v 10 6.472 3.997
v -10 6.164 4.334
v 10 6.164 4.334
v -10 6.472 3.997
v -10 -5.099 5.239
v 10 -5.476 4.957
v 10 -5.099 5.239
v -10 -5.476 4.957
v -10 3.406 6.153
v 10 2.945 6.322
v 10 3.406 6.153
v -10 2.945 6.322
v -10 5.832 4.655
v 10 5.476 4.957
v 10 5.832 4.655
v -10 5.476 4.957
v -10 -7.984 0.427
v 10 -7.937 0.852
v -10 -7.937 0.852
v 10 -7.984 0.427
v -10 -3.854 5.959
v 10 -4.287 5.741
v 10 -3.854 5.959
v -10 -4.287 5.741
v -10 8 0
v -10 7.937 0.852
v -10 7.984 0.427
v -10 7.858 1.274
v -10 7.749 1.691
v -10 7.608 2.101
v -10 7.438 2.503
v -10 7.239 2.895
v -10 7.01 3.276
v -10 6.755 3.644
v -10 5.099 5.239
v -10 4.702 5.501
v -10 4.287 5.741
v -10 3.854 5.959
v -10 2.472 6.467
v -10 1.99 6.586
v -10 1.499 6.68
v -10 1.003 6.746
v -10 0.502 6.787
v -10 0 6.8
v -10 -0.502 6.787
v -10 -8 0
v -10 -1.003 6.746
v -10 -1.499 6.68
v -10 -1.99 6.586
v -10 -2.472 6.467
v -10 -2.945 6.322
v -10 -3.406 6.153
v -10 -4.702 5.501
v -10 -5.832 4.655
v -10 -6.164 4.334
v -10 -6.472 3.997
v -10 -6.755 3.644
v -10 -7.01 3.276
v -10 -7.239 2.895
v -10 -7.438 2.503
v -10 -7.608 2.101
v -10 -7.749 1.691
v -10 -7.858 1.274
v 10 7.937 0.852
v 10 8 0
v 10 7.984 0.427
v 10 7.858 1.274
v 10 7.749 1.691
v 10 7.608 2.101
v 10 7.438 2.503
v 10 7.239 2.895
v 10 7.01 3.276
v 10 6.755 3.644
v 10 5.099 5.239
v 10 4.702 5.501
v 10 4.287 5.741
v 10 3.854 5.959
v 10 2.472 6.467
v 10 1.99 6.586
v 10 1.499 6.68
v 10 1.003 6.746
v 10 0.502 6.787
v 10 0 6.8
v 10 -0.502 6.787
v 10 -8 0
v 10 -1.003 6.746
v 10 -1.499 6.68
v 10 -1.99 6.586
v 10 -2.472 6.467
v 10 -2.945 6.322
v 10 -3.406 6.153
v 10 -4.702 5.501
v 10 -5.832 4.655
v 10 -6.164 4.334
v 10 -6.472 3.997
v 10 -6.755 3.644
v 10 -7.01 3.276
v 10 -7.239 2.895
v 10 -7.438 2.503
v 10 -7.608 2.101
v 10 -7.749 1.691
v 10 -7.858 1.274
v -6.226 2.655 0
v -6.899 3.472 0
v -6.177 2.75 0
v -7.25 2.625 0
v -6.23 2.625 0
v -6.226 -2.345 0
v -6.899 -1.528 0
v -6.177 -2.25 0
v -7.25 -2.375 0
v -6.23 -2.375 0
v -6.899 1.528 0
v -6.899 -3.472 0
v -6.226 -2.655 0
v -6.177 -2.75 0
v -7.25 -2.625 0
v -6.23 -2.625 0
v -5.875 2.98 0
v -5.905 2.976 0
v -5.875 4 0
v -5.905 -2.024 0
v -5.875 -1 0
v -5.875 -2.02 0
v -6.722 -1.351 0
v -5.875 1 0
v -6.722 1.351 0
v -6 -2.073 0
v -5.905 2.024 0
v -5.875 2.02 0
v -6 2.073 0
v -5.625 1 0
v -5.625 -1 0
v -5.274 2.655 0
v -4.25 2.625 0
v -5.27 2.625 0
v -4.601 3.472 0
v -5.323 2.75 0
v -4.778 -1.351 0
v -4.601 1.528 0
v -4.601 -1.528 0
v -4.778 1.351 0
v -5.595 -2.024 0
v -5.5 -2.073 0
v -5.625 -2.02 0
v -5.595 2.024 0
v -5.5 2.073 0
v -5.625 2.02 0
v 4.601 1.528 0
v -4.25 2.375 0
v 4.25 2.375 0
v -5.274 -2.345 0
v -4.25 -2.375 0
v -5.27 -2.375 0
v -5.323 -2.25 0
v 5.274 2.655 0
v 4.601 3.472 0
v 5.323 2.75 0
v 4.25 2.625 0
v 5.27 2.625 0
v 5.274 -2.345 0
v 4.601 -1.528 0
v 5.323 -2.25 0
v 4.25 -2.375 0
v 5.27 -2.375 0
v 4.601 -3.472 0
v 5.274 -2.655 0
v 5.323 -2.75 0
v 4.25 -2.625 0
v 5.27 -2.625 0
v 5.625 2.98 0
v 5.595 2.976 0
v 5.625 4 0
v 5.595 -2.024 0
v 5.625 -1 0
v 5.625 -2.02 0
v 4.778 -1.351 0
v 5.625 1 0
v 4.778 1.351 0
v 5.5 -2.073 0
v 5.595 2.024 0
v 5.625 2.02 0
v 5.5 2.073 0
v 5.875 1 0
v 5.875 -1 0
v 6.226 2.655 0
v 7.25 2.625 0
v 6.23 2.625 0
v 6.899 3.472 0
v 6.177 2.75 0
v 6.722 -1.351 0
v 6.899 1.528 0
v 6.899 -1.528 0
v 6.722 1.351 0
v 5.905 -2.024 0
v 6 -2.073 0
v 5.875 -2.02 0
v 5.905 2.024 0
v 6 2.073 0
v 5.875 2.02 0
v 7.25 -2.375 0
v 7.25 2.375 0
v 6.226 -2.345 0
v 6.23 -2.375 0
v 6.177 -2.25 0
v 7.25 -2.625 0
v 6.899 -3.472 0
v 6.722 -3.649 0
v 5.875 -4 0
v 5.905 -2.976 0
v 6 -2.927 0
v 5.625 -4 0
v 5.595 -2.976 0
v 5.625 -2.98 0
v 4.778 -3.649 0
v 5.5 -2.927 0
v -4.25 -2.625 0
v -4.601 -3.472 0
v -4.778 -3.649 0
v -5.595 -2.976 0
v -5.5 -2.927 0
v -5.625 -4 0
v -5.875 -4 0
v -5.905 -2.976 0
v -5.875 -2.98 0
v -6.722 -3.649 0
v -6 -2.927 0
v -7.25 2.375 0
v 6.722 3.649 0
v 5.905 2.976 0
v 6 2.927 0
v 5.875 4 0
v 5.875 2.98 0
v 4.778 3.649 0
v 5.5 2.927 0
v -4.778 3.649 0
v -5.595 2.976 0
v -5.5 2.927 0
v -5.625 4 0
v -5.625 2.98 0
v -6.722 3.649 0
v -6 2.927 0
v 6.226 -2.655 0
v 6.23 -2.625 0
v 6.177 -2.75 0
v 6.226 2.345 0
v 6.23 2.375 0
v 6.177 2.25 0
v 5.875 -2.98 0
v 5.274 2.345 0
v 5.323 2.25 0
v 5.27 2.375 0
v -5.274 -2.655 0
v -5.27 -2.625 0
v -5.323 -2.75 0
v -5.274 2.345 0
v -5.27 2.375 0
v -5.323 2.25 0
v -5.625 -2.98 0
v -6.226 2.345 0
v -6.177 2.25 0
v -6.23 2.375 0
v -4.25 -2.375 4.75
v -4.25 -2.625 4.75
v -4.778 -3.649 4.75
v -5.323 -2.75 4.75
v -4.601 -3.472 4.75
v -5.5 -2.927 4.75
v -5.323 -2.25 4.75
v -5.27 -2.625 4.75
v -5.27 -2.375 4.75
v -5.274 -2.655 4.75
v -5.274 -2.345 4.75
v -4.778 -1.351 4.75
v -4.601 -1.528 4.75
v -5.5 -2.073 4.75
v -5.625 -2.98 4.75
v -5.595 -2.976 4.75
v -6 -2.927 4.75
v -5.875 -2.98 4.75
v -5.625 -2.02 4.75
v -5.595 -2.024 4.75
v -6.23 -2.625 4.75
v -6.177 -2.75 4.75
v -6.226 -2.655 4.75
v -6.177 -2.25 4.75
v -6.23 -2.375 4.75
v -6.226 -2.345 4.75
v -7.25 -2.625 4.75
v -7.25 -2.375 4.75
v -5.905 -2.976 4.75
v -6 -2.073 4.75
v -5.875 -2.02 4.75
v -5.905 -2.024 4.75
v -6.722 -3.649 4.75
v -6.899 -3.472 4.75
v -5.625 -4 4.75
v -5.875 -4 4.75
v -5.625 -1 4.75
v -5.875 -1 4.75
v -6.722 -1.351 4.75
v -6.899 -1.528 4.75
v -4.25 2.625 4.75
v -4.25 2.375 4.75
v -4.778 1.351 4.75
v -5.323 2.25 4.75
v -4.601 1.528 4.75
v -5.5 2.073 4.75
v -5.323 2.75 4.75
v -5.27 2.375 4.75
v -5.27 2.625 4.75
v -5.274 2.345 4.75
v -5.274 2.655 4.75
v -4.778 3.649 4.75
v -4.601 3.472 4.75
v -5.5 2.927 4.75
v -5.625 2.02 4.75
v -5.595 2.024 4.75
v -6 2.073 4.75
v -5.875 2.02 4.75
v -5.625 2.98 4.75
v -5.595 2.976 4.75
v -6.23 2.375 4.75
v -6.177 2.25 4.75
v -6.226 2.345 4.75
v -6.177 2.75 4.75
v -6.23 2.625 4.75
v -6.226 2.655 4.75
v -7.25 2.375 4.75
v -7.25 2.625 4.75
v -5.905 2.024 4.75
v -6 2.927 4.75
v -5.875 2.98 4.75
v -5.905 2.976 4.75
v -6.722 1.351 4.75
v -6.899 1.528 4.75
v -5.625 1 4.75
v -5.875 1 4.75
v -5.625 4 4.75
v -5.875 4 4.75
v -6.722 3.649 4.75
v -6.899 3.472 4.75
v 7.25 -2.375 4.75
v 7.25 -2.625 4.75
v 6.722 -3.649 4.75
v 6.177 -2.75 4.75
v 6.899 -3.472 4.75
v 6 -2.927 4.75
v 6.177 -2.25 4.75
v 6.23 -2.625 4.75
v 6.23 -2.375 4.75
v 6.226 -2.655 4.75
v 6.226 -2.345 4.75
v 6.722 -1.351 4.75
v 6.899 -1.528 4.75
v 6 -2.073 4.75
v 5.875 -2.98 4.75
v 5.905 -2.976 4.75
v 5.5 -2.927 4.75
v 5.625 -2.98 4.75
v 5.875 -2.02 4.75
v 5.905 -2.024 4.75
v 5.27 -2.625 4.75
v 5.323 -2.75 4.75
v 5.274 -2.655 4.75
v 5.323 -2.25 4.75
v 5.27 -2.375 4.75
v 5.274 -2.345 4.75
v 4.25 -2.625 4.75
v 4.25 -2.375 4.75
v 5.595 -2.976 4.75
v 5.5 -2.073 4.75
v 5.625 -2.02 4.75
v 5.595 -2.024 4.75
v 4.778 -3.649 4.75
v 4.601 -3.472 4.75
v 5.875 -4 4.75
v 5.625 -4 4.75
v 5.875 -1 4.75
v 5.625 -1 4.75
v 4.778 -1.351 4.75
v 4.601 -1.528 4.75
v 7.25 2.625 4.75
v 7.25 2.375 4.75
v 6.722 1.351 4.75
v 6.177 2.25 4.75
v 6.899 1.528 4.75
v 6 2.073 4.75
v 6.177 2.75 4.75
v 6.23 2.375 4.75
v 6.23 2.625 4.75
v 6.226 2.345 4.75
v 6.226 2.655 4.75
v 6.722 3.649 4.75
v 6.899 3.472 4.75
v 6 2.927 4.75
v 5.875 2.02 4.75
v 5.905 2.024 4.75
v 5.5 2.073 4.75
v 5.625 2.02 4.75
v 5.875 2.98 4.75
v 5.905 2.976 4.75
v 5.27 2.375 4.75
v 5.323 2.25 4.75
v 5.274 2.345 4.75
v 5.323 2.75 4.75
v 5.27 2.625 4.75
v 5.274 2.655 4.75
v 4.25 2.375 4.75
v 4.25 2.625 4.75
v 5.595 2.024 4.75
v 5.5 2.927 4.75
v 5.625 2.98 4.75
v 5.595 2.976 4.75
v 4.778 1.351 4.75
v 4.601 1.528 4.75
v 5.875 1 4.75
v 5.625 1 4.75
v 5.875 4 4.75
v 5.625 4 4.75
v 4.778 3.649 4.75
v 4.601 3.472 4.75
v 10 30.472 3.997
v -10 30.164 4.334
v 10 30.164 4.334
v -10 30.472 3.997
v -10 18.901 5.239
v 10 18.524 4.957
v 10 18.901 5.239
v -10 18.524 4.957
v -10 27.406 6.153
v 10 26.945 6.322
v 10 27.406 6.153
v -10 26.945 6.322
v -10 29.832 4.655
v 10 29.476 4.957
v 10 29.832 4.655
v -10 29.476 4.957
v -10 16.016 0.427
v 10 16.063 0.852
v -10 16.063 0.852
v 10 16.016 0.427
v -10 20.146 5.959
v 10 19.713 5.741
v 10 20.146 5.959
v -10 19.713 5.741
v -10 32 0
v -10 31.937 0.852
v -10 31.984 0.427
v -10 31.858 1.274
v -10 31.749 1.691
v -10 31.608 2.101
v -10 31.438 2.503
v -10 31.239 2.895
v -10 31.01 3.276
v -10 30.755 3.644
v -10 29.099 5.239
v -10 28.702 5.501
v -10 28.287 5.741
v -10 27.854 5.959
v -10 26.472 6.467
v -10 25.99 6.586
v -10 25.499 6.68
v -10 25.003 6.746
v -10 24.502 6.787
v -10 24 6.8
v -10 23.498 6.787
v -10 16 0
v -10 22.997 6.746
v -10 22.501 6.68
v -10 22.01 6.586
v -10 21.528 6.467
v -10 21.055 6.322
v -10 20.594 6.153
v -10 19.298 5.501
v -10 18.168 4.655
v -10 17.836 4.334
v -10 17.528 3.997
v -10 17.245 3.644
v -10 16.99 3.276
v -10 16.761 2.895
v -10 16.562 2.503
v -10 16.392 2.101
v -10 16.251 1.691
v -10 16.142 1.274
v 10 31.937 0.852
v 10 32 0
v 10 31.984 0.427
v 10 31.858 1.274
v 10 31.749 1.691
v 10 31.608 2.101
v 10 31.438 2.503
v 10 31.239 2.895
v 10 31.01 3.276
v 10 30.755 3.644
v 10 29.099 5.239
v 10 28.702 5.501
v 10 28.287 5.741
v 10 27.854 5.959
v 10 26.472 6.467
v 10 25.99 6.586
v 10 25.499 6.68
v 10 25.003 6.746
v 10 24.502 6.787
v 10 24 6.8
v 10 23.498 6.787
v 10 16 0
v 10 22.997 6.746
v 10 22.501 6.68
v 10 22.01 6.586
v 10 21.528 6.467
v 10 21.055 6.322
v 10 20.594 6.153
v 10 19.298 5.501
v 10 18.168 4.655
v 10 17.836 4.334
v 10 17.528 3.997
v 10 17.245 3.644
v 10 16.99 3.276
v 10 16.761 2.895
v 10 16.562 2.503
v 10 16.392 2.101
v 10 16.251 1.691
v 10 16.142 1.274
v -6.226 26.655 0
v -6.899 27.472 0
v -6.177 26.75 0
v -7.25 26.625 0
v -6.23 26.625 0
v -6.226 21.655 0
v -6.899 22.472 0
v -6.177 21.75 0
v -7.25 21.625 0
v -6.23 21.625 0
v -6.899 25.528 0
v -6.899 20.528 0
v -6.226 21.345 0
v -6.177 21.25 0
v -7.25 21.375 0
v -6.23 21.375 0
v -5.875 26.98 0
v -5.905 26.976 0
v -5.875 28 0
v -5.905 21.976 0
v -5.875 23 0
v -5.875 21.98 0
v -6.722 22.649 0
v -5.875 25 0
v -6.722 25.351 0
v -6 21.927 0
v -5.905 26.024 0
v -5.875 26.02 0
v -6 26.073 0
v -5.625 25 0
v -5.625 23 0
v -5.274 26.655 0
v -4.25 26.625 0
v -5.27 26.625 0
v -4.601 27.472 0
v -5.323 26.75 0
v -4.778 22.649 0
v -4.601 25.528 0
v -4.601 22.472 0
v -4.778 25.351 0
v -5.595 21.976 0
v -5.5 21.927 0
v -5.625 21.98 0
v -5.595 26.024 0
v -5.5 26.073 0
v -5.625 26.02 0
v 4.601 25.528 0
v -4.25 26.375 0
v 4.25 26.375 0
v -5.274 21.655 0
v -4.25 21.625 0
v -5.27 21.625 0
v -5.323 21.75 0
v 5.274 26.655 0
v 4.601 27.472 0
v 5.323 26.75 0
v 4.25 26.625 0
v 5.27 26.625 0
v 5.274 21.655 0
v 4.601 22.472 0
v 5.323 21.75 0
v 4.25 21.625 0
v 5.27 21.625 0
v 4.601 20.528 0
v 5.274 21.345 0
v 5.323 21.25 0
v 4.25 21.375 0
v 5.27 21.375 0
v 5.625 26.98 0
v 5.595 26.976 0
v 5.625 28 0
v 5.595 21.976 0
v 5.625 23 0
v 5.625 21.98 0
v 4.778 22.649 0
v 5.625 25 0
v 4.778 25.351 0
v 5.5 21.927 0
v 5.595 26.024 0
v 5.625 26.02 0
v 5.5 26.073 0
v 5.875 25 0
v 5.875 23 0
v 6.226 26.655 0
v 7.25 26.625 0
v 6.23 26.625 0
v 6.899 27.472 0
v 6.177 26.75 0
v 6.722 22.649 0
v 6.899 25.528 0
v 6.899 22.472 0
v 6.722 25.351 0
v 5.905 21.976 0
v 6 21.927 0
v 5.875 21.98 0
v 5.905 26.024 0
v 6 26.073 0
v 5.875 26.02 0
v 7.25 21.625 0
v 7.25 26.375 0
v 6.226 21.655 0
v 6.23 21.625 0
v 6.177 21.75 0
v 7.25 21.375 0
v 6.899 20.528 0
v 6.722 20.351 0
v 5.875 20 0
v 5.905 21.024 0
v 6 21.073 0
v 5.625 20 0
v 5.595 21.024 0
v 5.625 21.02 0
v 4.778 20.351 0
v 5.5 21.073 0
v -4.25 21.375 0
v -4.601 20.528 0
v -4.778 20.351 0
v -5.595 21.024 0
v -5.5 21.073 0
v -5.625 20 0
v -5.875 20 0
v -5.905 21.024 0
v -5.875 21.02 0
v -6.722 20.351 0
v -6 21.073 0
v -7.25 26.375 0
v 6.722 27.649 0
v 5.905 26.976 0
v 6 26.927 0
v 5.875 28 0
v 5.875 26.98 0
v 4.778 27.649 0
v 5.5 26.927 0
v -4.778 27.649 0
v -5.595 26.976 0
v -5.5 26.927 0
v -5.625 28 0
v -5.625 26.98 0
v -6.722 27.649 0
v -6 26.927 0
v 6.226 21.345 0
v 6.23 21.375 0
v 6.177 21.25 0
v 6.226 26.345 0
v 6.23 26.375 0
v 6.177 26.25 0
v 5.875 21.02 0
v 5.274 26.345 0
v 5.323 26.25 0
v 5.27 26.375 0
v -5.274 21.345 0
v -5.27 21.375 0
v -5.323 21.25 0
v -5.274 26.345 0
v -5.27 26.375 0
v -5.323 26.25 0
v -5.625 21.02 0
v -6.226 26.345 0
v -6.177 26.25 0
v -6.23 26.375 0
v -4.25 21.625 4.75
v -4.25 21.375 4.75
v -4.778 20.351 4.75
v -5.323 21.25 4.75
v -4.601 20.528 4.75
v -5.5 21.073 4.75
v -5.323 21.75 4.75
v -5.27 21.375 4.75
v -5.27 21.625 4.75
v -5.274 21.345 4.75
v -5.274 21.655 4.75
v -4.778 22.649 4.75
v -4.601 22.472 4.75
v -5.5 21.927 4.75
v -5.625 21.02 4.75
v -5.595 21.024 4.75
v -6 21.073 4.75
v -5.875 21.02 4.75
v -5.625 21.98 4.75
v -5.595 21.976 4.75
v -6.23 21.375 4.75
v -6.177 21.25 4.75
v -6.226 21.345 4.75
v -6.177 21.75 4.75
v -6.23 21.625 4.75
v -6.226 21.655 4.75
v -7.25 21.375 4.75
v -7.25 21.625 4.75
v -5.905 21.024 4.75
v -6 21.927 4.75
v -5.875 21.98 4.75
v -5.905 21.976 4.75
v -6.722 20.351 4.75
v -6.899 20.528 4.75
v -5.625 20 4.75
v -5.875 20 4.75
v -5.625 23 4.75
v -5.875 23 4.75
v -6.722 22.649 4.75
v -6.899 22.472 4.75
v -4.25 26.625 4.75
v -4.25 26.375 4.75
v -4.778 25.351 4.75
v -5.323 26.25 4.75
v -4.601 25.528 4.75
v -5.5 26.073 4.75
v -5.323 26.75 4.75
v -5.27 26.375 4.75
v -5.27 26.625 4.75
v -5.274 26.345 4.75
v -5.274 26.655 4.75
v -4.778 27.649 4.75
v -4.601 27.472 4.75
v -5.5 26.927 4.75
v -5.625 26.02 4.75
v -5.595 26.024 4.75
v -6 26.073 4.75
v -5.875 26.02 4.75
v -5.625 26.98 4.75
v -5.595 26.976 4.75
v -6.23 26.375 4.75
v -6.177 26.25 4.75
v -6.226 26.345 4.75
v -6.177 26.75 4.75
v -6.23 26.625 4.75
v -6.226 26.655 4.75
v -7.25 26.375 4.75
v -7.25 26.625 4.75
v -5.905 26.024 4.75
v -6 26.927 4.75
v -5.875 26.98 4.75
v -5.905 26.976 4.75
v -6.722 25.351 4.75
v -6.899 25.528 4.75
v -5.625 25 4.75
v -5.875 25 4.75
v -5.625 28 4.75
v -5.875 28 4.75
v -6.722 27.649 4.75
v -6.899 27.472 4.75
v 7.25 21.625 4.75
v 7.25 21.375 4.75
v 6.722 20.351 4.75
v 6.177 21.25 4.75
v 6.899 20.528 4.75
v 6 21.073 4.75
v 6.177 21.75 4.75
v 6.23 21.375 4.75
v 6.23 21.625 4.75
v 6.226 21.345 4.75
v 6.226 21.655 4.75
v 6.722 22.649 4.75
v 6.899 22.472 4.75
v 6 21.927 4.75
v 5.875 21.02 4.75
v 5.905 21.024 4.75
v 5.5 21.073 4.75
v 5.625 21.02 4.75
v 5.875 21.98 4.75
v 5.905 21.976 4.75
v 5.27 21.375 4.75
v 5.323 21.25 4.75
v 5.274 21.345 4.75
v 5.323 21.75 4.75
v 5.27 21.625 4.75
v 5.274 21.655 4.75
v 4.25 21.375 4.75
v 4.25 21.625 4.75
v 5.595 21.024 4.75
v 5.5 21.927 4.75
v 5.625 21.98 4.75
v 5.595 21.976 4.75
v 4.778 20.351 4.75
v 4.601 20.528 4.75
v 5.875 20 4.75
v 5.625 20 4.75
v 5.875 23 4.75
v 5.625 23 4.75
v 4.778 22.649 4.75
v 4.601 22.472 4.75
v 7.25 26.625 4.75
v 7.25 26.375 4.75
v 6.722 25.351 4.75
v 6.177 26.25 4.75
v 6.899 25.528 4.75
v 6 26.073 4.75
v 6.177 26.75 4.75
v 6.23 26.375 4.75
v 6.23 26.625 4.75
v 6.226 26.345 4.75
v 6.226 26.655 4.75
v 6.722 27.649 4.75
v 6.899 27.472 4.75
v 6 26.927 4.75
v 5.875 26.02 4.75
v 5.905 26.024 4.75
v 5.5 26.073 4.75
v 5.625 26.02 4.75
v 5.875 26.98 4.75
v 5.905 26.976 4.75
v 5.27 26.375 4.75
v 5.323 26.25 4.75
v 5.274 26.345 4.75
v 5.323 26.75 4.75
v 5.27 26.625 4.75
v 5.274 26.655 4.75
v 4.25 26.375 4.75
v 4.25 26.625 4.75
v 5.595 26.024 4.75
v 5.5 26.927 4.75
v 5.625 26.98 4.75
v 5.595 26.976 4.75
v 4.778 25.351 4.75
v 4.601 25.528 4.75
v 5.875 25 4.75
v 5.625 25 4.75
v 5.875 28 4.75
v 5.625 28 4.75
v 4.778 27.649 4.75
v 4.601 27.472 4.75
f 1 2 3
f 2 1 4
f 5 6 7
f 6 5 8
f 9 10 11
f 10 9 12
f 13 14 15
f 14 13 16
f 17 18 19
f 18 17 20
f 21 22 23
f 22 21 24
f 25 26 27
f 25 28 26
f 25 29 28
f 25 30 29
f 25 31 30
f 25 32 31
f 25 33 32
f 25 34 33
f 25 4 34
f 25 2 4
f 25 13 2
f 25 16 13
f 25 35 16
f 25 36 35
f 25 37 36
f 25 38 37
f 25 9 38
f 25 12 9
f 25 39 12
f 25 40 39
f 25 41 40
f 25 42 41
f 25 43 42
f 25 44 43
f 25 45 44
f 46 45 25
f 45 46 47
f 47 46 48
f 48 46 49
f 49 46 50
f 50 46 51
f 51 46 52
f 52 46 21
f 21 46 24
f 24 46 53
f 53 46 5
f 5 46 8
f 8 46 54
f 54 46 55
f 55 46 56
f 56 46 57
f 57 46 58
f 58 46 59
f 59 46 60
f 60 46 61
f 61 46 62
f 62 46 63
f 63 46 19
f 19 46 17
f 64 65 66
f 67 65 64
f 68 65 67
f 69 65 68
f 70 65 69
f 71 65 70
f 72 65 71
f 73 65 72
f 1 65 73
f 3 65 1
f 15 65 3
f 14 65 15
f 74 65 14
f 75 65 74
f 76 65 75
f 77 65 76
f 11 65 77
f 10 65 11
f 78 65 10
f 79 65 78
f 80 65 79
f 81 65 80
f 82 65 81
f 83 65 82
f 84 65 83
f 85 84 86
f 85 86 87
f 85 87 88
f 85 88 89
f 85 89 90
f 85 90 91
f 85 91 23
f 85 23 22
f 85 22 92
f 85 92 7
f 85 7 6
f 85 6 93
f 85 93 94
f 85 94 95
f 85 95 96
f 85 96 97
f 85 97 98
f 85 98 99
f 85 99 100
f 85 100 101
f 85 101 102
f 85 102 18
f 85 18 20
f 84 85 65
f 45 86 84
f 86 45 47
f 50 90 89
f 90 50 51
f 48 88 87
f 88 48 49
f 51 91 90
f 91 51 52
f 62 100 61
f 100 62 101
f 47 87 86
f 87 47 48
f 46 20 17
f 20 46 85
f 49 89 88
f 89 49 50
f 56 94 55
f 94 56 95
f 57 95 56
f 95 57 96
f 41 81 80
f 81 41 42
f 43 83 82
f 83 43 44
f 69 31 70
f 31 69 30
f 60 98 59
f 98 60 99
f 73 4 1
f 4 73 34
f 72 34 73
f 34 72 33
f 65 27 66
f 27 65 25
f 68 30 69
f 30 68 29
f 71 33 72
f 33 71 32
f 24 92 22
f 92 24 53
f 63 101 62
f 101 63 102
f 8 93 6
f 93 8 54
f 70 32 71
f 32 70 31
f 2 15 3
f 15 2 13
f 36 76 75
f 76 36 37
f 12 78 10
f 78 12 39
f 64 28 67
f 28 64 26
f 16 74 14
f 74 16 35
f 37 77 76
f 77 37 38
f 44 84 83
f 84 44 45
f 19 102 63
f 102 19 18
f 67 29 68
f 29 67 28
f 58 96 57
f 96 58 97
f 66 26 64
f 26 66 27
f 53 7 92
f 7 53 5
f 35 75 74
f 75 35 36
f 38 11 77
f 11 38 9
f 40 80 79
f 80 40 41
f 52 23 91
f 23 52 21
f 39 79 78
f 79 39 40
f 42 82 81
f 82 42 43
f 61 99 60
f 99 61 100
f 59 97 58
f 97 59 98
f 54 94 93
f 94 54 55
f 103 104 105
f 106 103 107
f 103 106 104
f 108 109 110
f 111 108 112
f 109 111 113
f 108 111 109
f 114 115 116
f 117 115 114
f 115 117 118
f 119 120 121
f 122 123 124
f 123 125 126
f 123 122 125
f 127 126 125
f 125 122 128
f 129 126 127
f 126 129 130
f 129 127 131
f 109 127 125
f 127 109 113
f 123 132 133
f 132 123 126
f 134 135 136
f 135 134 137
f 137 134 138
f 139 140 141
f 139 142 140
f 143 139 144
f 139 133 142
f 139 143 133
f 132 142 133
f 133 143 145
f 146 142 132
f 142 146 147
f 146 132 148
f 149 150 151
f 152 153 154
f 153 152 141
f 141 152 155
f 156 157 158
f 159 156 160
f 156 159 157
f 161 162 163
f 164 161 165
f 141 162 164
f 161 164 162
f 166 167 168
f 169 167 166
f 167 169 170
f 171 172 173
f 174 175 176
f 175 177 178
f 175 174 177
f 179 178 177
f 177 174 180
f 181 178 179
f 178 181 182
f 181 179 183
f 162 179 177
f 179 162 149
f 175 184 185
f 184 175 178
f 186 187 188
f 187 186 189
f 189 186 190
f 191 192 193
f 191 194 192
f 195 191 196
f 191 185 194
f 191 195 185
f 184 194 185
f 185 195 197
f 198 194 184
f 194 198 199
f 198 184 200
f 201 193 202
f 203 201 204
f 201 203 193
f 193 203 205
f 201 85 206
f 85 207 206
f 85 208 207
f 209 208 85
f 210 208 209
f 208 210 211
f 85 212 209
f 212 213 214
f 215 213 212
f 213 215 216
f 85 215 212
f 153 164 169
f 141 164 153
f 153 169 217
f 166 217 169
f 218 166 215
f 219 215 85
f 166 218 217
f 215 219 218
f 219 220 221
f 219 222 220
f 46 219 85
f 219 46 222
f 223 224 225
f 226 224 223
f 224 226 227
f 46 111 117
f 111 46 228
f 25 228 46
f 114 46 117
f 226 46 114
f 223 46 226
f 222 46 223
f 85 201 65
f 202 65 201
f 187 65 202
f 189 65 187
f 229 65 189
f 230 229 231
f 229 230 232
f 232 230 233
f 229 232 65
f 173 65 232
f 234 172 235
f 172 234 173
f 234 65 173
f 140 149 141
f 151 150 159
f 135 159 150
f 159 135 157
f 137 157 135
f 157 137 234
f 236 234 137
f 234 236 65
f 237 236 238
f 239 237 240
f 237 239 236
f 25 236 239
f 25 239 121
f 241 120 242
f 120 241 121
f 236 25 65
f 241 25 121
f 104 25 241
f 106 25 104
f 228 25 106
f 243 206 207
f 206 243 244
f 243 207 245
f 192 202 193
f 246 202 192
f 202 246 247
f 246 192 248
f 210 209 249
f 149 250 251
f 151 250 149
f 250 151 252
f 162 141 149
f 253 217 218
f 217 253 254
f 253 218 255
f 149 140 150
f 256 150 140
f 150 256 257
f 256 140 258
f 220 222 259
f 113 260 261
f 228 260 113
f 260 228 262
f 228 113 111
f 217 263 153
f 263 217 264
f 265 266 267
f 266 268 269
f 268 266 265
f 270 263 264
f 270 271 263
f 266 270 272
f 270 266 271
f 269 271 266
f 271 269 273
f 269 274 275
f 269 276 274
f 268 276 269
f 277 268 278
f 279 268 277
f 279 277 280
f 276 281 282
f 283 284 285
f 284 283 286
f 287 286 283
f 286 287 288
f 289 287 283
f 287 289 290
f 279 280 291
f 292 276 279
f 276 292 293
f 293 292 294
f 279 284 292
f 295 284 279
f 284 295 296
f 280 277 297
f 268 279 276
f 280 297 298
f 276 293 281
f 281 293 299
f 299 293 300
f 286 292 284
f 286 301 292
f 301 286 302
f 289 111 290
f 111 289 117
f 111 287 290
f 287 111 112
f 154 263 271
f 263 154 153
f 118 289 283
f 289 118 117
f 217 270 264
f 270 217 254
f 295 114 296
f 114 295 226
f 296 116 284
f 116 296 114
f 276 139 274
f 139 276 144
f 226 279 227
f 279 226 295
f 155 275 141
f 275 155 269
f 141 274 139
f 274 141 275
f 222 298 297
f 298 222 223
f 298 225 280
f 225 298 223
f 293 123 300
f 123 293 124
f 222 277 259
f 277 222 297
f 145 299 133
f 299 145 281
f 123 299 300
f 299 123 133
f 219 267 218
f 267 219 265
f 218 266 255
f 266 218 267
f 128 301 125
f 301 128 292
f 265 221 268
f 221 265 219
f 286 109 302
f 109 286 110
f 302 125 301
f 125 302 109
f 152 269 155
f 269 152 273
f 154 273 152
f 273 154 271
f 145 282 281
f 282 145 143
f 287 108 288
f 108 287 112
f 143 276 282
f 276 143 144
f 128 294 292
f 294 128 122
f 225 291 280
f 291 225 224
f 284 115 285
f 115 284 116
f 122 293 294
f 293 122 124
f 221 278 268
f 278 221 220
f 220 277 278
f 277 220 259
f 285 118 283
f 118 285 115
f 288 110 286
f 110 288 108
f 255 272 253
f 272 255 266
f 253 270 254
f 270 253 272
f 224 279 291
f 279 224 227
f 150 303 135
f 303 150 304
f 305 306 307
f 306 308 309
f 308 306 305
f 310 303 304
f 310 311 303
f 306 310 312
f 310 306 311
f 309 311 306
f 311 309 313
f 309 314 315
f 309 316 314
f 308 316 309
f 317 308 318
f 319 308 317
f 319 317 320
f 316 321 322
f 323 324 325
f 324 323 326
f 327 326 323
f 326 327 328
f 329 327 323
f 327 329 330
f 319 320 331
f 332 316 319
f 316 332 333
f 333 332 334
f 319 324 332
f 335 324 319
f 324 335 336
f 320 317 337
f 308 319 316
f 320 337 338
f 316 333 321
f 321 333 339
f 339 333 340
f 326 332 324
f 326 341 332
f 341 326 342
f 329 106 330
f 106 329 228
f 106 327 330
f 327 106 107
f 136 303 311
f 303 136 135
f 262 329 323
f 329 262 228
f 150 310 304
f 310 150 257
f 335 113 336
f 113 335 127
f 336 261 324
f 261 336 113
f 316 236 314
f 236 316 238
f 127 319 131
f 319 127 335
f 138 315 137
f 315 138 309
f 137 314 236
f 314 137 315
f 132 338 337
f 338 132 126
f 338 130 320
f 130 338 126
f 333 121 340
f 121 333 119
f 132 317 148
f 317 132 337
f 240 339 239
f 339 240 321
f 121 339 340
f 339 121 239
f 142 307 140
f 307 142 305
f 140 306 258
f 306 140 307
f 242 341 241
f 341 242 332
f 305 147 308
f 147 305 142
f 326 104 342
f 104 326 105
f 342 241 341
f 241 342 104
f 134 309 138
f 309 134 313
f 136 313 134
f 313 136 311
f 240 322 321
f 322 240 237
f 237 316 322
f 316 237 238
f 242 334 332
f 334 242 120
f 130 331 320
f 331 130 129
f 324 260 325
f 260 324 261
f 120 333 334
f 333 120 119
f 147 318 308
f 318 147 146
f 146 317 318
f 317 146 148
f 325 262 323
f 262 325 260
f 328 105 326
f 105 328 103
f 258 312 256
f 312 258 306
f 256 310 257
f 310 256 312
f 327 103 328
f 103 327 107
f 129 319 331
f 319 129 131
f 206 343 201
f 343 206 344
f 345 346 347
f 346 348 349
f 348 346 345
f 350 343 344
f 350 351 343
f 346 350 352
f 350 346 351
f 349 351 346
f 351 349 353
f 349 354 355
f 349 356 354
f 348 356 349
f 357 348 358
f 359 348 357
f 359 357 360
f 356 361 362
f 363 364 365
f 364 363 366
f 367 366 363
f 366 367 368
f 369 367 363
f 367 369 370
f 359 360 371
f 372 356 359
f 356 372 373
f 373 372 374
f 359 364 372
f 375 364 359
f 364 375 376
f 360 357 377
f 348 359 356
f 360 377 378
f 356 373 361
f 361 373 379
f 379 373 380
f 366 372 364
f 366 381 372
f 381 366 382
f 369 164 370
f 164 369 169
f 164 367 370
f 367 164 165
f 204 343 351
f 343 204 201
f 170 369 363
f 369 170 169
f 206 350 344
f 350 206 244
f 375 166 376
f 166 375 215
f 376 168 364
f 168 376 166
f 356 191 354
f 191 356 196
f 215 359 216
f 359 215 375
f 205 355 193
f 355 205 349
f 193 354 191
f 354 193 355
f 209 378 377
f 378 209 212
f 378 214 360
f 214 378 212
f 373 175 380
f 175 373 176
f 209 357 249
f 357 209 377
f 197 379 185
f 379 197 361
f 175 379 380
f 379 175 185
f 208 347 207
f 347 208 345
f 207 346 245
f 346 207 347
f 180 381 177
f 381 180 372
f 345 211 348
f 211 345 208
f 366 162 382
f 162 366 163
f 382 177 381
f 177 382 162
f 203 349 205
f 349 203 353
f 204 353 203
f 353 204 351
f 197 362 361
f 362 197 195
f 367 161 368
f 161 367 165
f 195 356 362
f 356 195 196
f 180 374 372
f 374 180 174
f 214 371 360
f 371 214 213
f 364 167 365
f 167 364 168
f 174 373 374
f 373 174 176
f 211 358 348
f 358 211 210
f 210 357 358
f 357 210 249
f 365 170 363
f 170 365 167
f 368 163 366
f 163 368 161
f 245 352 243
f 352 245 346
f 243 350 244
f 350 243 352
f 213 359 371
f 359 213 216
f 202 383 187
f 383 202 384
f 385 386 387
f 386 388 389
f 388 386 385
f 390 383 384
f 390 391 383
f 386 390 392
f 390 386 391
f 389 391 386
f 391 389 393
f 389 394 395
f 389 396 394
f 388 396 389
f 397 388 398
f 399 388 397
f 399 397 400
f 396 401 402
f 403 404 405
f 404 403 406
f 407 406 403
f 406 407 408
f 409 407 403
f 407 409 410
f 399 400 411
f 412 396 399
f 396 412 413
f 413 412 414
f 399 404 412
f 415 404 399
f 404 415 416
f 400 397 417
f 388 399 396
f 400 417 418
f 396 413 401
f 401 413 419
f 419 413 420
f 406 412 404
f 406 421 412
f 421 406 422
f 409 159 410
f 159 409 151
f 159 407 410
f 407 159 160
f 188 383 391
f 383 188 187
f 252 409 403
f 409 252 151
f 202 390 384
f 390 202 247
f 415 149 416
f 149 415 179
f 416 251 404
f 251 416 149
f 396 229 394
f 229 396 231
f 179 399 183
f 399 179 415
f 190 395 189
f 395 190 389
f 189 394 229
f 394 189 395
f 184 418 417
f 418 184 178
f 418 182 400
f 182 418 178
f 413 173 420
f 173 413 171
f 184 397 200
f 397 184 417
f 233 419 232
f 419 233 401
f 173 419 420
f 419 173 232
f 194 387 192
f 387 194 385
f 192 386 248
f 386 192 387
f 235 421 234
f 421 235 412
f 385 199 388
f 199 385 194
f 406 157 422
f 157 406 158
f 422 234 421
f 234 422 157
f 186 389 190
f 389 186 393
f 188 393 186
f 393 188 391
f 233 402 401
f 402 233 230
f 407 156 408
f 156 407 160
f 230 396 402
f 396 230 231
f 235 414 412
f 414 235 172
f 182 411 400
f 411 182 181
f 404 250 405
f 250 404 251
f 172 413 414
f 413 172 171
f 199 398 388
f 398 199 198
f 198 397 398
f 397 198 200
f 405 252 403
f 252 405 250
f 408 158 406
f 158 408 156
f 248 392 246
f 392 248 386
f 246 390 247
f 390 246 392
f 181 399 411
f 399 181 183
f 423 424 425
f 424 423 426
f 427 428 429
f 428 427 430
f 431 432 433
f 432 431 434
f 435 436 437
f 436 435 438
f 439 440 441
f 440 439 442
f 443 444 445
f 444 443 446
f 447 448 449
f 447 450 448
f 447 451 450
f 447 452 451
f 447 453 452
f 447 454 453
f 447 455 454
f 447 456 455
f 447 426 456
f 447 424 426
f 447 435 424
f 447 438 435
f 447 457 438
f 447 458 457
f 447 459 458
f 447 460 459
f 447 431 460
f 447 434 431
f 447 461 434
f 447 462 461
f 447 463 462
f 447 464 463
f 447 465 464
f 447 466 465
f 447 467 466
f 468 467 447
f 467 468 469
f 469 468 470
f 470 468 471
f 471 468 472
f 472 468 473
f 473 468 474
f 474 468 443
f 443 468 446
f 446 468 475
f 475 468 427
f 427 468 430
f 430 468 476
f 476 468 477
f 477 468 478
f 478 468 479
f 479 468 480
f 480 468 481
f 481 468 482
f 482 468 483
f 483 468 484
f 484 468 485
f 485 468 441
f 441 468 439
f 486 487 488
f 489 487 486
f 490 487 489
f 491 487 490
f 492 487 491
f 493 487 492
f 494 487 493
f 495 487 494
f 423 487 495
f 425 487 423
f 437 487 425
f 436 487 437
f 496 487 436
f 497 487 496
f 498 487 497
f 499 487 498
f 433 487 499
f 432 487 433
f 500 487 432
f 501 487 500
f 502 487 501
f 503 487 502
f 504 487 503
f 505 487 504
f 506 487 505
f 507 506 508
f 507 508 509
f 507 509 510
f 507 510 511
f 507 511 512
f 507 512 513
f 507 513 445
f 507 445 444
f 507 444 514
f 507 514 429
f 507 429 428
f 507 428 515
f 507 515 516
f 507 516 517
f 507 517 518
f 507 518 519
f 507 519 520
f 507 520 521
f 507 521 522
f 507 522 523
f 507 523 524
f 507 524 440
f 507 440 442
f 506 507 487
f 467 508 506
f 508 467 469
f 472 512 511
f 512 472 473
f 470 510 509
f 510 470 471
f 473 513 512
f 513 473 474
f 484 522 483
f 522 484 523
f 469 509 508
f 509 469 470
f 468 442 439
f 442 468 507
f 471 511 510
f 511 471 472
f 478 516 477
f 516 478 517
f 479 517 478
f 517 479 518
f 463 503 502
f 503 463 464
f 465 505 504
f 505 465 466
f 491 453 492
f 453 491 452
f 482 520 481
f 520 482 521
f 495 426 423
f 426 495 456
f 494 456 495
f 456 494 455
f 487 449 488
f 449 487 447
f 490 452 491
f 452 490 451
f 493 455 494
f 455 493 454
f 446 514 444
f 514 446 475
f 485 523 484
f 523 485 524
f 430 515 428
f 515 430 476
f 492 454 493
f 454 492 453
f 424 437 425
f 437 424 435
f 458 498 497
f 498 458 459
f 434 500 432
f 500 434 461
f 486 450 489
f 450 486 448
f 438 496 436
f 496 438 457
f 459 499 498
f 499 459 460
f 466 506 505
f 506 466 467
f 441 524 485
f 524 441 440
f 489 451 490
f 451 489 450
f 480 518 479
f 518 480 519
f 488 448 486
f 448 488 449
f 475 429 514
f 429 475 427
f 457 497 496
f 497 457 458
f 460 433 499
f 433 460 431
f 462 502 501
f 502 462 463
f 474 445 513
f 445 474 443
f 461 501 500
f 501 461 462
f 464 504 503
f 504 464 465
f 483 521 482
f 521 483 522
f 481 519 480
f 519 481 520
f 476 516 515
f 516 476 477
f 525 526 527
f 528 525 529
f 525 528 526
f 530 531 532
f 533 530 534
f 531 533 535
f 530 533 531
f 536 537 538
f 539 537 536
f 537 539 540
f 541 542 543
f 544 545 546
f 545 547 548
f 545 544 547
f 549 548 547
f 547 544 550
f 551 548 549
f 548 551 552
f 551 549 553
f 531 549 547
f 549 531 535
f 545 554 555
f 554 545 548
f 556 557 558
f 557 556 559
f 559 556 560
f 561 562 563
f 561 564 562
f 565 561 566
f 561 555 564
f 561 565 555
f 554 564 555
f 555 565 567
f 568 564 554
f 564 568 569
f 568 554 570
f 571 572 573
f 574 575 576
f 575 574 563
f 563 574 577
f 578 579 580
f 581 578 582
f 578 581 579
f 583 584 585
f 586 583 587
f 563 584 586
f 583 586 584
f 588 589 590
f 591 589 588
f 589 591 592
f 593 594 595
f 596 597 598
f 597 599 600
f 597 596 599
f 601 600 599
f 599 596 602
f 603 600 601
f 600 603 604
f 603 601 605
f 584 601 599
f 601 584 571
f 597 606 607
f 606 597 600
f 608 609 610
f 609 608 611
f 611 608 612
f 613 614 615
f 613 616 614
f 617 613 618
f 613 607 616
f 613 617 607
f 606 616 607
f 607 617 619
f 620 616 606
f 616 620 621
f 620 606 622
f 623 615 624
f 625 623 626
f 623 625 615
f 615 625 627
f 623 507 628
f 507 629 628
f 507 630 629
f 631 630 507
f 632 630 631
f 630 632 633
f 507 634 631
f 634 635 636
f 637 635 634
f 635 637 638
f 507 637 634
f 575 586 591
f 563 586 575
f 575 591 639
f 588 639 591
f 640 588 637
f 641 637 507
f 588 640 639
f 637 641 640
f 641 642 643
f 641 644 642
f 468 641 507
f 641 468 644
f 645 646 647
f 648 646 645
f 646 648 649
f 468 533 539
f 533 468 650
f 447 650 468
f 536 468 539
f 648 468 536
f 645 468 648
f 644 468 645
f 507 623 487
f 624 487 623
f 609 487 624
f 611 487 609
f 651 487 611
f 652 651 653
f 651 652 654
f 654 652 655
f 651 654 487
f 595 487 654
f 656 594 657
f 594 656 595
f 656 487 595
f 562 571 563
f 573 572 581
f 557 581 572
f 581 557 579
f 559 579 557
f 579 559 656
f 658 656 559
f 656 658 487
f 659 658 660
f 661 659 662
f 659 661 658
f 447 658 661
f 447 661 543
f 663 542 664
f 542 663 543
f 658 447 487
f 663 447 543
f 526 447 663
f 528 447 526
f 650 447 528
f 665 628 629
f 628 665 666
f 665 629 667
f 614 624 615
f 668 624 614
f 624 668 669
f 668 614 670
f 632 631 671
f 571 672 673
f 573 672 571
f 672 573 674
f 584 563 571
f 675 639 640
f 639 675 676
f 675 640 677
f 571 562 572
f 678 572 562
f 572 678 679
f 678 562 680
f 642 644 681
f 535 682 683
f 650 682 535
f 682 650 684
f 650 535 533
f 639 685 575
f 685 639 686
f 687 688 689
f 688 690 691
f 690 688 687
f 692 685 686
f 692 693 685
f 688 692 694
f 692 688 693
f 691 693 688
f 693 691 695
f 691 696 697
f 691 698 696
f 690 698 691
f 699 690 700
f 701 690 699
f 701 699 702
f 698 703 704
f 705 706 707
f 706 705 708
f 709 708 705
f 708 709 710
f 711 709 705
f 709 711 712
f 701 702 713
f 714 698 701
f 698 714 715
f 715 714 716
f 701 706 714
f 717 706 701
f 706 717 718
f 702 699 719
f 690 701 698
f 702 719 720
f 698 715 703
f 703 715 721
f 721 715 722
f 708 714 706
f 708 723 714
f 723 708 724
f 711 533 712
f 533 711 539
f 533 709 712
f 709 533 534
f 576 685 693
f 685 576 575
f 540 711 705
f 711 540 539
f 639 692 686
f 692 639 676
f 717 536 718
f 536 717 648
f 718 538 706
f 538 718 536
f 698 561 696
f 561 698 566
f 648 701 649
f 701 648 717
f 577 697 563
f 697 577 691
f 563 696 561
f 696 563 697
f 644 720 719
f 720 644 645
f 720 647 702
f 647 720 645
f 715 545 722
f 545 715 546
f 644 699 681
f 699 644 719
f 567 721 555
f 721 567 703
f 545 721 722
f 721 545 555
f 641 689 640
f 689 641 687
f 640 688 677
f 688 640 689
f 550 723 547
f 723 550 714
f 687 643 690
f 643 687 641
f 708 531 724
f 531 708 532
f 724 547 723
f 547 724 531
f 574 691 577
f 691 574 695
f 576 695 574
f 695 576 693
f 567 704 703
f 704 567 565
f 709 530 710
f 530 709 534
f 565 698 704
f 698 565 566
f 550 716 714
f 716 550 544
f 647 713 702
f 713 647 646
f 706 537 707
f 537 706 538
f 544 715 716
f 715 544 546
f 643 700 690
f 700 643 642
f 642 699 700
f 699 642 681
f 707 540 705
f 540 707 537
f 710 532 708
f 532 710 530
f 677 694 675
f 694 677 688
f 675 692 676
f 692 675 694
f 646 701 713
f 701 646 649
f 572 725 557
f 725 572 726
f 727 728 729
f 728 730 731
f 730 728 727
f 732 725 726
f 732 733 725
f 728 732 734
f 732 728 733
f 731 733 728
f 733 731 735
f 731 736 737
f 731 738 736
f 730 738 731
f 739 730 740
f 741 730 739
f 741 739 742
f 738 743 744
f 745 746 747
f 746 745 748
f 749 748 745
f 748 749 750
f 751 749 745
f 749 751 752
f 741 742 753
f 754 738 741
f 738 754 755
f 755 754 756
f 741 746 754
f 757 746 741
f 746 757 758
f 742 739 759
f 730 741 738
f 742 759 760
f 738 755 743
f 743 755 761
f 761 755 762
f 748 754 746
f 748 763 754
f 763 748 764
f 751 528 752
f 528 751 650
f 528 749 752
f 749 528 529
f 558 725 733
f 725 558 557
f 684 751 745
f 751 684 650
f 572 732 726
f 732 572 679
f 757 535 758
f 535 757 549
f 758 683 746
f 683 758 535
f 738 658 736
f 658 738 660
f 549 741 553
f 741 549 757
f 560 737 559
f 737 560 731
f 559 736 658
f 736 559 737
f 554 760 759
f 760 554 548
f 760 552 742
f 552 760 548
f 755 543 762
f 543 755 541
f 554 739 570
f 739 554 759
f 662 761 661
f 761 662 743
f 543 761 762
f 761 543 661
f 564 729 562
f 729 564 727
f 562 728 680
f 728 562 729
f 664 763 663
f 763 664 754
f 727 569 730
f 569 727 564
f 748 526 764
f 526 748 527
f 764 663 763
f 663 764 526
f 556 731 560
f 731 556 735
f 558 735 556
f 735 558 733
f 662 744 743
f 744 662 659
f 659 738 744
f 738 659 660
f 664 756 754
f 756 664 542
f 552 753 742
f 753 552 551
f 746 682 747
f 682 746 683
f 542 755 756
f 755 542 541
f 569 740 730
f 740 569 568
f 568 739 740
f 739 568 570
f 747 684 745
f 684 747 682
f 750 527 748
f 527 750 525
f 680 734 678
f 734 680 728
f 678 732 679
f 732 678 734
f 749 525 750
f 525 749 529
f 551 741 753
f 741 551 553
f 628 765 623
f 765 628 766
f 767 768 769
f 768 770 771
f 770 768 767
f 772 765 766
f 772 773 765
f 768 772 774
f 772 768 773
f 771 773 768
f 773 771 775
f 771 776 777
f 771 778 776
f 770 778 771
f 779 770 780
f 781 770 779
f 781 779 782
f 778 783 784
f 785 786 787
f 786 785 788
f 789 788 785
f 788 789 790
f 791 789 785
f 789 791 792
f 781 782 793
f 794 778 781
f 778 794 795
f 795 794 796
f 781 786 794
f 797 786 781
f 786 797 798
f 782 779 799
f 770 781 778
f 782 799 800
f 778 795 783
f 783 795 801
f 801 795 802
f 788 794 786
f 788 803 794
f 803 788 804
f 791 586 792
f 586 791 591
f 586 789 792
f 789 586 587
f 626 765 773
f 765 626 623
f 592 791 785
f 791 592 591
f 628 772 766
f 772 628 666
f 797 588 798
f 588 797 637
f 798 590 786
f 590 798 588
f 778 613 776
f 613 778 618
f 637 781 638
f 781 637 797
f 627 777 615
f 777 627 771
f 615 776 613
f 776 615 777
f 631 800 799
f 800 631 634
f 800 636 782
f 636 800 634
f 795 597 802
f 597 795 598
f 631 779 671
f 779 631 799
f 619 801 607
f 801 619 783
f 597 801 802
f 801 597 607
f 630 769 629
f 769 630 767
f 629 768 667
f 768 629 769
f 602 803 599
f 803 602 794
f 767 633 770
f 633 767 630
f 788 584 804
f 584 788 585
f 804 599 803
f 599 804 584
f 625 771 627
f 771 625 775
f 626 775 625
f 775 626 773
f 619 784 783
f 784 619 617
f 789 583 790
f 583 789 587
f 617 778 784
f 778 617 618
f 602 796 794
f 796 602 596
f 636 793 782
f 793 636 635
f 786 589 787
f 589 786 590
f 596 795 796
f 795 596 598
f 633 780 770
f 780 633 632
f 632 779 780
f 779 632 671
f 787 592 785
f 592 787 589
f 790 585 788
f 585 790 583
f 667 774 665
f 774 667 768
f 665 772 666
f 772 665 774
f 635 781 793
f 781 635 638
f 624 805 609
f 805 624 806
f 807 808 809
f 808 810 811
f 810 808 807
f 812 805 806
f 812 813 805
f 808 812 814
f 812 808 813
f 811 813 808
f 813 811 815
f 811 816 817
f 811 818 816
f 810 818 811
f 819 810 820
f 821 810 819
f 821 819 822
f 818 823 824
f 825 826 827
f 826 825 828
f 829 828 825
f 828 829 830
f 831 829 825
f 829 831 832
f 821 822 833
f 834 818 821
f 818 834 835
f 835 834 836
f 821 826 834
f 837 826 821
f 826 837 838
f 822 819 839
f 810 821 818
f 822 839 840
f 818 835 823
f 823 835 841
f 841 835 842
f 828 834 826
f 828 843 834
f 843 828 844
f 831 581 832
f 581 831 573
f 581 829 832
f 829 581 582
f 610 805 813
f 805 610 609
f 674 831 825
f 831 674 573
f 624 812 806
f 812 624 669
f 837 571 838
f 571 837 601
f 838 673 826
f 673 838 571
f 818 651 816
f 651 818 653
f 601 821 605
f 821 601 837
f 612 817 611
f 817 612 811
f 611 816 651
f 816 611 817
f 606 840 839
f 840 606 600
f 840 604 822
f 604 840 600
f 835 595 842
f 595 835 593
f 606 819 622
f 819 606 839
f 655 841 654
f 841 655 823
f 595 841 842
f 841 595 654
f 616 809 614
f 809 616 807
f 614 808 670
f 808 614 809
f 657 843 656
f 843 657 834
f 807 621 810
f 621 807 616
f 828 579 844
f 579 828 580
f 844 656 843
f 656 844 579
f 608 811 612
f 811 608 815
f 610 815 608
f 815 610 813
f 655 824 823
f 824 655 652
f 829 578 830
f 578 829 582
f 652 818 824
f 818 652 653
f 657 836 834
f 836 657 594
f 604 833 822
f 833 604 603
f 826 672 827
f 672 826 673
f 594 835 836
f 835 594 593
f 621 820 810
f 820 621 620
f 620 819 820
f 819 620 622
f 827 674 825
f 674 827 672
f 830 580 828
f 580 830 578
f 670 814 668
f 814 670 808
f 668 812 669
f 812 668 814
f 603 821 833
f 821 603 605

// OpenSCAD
SCREW_DIST_1 = 11.5;
SCREW_DIST_2 =  5.0;

WIDTH        = 20;
D            = 16;
SCREW_D      =  1;
K            =  0.85;
ATOM         =  0.01;

module piece() {
    difference() {
        intersection() {
            scale([1, 1, K])
            rotate([0, 90, 0])
            cylinder(d=D, h=WIDTH, center=true, $fn=100);
            
            cylinder(r=WIDTH*2, h=D);
        }
        
        for(x=[-SCREW_DIST_1/2, SCREW_DIST_1/2]) {
            for(y=[-SCREW_DIST_2/2, SCREW_DIST_2/2]) {
                translate([x, y, -ATOM]) {
                    h = D/2*K *.7;
                    w = SCREW_D*3;
                    th = .25;
                    
                    cylinder(d=SCREW_D, h=h, $fn=20);

                    for (a=[0, 45, 90, 135])
                        rotate([0, 0, a])
                        translate([-w/2, -th/2, 0])
                        cube([w, th, h]);
                }
            }
        }
    }
}

piece();

translate([0, D*1.5, 0]) piece();
